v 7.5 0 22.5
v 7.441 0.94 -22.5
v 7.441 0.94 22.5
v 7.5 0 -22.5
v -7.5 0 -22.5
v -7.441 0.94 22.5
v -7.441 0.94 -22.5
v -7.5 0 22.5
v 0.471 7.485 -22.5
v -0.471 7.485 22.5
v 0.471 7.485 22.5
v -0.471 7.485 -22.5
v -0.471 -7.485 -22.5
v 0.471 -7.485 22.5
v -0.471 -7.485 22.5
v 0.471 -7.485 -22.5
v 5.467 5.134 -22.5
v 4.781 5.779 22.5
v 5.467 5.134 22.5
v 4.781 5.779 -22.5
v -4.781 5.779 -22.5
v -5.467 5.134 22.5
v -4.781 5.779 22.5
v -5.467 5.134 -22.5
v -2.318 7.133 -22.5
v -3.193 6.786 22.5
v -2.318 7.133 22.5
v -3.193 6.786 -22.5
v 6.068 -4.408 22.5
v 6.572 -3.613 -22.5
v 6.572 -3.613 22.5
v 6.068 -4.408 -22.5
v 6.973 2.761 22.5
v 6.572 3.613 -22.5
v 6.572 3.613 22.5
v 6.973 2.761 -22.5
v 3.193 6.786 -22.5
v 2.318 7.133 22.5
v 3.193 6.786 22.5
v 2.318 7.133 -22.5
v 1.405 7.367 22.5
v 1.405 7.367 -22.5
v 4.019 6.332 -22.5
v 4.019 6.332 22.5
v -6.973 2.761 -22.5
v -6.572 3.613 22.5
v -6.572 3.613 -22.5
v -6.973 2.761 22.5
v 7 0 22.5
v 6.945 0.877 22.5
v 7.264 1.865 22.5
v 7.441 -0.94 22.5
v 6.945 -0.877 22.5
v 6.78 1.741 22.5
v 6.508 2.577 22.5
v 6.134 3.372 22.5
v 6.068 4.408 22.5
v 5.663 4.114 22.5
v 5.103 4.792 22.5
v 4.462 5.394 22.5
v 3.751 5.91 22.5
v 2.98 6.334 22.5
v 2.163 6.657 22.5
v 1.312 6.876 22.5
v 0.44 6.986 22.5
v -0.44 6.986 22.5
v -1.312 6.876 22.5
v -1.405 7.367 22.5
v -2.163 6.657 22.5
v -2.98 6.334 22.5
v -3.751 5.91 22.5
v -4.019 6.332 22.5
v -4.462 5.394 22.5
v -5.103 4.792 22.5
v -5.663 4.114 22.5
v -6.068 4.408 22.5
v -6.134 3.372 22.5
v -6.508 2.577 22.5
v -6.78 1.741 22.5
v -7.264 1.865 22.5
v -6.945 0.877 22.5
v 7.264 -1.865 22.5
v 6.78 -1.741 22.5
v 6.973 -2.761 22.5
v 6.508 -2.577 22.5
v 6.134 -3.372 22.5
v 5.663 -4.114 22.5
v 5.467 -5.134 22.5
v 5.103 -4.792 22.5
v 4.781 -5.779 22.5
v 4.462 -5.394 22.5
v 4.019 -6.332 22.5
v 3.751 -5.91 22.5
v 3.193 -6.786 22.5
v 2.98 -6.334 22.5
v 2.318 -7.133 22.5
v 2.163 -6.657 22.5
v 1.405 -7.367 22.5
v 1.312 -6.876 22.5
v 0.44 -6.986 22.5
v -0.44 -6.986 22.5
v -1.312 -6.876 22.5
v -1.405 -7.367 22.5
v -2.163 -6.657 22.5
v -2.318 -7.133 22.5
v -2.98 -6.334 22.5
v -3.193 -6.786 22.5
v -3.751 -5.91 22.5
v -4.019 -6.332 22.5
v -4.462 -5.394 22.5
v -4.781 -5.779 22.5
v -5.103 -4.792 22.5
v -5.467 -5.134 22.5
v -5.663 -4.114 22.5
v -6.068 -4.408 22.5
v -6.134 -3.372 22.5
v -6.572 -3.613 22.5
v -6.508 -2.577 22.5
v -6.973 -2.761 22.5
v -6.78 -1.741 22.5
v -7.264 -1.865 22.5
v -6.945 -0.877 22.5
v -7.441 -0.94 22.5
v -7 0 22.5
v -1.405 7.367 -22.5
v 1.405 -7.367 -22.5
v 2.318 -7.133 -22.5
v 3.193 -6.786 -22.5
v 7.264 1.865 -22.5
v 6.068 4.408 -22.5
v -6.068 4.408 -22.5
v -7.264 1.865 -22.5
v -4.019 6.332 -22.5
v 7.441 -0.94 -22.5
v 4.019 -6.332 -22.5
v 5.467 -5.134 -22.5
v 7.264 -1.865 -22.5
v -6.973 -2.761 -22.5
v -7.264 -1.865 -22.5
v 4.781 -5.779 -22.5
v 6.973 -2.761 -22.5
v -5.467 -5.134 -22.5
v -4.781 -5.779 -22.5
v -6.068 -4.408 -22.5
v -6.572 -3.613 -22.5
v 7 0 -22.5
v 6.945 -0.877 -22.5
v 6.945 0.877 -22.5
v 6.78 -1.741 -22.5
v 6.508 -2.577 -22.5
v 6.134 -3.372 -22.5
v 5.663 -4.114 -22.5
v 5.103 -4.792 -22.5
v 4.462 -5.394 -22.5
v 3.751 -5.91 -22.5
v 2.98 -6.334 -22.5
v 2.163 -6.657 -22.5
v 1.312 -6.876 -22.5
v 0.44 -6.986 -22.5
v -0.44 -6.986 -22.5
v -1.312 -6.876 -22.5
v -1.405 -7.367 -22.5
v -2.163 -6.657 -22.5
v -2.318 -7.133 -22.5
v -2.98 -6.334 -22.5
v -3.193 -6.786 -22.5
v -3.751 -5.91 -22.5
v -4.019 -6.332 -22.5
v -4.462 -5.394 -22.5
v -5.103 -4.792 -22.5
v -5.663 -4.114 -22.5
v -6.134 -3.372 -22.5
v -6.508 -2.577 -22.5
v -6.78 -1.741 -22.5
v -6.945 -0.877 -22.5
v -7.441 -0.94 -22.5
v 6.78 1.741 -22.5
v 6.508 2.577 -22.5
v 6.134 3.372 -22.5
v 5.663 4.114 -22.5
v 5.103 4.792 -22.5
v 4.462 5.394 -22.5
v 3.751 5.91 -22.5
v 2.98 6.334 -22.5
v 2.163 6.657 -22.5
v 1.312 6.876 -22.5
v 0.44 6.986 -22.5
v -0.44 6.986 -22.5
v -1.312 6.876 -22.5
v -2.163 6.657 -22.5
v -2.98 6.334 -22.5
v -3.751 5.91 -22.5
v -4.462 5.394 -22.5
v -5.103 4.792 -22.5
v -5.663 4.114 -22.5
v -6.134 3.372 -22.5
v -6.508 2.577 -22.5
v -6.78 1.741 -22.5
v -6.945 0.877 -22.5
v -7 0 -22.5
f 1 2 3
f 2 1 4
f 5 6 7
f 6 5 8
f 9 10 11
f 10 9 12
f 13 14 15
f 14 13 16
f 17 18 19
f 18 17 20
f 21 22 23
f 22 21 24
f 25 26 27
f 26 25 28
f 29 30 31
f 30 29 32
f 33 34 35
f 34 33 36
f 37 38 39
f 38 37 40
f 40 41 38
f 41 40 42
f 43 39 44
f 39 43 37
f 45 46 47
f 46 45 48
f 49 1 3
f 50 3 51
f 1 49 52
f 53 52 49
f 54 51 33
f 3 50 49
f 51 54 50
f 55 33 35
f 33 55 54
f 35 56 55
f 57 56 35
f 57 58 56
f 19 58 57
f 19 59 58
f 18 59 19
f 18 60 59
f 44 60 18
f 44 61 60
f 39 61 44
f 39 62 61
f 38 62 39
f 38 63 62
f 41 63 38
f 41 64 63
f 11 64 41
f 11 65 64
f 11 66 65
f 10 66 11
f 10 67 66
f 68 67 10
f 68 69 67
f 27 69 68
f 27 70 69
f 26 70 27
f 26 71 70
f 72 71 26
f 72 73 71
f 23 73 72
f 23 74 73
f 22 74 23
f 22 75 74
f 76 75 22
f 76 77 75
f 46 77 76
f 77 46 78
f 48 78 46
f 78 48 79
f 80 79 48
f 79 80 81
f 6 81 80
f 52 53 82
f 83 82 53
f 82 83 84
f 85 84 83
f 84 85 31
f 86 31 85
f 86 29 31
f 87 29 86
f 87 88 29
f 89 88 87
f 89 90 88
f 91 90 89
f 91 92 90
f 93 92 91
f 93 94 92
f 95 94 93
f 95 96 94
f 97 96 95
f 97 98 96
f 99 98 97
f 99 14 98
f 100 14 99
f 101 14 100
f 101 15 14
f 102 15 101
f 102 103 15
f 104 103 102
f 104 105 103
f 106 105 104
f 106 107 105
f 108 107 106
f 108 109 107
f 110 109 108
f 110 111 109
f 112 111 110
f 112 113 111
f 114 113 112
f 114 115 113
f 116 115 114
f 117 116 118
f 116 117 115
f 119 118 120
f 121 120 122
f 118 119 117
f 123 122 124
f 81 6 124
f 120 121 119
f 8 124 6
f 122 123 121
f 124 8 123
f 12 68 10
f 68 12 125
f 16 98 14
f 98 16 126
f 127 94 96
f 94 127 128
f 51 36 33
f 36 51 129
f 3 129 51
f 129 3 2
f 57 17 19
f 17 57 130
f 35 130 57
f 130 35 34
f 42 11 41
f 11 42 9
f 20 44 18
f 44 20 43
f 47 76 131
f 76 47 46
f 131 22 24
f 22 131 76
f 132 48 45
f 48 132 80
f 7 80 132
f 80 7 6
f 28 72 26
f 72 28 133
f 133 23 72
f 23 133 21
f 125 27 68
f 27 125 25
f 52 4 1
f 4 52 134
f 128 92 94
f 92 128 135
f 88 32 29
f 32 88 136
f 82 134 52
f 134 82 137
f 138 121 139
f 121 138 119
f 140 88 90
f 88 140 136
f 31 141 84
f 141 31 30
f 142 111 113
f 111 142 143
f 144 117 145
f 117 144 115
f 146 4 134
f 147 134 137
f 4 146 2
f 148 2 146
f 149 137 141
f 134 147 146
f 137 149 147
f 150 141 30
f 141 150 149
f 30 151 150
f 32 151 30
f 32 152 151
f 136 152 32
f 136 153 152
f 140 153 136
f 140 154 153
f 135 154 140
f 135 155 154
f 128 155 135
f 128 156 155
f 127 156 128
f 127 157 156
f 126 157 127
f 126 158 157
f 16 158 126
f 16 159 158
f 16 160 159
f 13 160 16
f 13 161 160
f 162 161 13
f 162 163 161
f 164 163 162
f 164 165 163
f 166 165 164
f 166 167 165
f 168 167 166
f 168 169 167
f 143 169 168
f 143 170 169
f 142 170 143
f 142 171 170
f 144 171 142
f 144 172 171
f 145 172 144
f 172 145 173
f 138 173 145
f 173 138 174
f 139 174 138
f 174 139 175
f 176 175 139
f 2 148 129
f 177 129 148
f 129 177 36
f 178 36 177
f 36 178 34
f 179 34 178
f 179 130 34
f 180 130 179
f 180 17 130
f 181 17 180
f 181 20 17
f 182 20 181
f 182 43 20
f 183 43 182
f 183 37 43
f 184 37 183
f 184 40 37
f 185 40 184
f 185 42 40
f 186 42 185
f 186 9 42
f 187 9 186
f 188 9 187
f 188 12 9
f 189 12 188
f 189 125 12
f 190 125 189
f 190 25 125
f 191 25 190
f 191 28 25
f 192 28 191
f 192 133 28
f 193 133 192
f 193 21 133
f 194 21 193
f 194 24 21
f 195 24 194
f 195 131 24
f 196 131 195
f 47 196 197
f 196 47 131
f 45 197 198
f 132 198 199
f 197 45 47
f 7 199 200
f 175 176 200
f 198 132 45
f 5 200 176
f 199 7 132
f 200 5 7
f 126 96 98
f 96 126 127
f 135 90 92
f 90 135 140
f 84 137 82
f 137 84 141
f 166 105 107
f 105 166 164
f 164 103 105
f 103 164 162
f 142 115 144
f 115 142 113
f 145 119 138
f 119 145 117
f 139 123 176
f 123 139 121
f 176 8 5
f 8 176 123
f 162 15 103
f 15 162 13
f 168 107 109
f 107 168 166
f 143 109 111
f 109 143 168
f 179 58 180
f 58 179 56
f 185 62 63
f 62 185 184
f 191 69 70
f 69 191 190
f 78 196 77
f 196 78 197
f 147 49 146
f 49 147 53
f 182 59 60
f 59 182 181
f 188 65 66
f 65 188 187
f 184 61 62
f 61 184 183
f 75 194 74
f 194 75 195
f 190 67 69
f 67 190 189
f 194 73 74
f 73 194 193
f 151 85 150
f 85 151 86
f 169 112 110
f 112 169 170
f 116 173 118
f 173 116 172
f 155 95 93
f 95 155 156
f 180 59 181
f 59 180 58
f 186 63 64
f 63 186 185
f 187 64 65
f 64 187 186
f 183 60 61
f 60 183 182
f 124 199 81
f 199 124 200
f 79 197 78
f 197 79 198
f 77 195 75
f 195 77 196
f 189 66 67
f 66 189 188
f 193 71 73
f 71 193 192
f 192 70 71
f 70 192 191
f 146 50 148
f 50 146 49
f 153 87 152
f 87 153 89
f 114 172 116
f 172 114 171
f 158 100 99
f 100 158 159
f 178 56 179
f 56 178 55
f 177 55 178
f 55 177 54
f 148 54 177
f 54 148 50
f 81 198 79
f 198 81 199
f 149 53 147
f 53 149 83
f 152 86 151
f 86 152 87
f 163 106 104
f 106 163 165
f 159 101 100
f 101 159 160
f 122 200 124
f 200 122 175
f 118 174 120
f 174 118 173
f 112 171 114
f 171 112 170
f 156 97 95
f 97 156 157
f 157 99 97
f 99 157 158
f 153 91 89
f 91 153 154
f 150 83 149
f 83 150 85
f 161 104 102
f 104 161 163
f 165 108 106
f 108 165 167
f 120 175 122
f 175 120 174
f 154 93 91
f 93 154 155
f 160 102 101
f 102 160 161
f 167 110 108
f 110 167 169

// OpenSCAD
$fn = 50;


difference() {
	union() {
		translate(v = [0, 0, -22.5000000000]) {
			cylinder(h = 45, r = 7.5000000000);
		}
	}
	union() {
		translate(v = [0, 0, -100.0000000000]) {
			cylinder(h = 200, r = 7);
		}
	}
}
